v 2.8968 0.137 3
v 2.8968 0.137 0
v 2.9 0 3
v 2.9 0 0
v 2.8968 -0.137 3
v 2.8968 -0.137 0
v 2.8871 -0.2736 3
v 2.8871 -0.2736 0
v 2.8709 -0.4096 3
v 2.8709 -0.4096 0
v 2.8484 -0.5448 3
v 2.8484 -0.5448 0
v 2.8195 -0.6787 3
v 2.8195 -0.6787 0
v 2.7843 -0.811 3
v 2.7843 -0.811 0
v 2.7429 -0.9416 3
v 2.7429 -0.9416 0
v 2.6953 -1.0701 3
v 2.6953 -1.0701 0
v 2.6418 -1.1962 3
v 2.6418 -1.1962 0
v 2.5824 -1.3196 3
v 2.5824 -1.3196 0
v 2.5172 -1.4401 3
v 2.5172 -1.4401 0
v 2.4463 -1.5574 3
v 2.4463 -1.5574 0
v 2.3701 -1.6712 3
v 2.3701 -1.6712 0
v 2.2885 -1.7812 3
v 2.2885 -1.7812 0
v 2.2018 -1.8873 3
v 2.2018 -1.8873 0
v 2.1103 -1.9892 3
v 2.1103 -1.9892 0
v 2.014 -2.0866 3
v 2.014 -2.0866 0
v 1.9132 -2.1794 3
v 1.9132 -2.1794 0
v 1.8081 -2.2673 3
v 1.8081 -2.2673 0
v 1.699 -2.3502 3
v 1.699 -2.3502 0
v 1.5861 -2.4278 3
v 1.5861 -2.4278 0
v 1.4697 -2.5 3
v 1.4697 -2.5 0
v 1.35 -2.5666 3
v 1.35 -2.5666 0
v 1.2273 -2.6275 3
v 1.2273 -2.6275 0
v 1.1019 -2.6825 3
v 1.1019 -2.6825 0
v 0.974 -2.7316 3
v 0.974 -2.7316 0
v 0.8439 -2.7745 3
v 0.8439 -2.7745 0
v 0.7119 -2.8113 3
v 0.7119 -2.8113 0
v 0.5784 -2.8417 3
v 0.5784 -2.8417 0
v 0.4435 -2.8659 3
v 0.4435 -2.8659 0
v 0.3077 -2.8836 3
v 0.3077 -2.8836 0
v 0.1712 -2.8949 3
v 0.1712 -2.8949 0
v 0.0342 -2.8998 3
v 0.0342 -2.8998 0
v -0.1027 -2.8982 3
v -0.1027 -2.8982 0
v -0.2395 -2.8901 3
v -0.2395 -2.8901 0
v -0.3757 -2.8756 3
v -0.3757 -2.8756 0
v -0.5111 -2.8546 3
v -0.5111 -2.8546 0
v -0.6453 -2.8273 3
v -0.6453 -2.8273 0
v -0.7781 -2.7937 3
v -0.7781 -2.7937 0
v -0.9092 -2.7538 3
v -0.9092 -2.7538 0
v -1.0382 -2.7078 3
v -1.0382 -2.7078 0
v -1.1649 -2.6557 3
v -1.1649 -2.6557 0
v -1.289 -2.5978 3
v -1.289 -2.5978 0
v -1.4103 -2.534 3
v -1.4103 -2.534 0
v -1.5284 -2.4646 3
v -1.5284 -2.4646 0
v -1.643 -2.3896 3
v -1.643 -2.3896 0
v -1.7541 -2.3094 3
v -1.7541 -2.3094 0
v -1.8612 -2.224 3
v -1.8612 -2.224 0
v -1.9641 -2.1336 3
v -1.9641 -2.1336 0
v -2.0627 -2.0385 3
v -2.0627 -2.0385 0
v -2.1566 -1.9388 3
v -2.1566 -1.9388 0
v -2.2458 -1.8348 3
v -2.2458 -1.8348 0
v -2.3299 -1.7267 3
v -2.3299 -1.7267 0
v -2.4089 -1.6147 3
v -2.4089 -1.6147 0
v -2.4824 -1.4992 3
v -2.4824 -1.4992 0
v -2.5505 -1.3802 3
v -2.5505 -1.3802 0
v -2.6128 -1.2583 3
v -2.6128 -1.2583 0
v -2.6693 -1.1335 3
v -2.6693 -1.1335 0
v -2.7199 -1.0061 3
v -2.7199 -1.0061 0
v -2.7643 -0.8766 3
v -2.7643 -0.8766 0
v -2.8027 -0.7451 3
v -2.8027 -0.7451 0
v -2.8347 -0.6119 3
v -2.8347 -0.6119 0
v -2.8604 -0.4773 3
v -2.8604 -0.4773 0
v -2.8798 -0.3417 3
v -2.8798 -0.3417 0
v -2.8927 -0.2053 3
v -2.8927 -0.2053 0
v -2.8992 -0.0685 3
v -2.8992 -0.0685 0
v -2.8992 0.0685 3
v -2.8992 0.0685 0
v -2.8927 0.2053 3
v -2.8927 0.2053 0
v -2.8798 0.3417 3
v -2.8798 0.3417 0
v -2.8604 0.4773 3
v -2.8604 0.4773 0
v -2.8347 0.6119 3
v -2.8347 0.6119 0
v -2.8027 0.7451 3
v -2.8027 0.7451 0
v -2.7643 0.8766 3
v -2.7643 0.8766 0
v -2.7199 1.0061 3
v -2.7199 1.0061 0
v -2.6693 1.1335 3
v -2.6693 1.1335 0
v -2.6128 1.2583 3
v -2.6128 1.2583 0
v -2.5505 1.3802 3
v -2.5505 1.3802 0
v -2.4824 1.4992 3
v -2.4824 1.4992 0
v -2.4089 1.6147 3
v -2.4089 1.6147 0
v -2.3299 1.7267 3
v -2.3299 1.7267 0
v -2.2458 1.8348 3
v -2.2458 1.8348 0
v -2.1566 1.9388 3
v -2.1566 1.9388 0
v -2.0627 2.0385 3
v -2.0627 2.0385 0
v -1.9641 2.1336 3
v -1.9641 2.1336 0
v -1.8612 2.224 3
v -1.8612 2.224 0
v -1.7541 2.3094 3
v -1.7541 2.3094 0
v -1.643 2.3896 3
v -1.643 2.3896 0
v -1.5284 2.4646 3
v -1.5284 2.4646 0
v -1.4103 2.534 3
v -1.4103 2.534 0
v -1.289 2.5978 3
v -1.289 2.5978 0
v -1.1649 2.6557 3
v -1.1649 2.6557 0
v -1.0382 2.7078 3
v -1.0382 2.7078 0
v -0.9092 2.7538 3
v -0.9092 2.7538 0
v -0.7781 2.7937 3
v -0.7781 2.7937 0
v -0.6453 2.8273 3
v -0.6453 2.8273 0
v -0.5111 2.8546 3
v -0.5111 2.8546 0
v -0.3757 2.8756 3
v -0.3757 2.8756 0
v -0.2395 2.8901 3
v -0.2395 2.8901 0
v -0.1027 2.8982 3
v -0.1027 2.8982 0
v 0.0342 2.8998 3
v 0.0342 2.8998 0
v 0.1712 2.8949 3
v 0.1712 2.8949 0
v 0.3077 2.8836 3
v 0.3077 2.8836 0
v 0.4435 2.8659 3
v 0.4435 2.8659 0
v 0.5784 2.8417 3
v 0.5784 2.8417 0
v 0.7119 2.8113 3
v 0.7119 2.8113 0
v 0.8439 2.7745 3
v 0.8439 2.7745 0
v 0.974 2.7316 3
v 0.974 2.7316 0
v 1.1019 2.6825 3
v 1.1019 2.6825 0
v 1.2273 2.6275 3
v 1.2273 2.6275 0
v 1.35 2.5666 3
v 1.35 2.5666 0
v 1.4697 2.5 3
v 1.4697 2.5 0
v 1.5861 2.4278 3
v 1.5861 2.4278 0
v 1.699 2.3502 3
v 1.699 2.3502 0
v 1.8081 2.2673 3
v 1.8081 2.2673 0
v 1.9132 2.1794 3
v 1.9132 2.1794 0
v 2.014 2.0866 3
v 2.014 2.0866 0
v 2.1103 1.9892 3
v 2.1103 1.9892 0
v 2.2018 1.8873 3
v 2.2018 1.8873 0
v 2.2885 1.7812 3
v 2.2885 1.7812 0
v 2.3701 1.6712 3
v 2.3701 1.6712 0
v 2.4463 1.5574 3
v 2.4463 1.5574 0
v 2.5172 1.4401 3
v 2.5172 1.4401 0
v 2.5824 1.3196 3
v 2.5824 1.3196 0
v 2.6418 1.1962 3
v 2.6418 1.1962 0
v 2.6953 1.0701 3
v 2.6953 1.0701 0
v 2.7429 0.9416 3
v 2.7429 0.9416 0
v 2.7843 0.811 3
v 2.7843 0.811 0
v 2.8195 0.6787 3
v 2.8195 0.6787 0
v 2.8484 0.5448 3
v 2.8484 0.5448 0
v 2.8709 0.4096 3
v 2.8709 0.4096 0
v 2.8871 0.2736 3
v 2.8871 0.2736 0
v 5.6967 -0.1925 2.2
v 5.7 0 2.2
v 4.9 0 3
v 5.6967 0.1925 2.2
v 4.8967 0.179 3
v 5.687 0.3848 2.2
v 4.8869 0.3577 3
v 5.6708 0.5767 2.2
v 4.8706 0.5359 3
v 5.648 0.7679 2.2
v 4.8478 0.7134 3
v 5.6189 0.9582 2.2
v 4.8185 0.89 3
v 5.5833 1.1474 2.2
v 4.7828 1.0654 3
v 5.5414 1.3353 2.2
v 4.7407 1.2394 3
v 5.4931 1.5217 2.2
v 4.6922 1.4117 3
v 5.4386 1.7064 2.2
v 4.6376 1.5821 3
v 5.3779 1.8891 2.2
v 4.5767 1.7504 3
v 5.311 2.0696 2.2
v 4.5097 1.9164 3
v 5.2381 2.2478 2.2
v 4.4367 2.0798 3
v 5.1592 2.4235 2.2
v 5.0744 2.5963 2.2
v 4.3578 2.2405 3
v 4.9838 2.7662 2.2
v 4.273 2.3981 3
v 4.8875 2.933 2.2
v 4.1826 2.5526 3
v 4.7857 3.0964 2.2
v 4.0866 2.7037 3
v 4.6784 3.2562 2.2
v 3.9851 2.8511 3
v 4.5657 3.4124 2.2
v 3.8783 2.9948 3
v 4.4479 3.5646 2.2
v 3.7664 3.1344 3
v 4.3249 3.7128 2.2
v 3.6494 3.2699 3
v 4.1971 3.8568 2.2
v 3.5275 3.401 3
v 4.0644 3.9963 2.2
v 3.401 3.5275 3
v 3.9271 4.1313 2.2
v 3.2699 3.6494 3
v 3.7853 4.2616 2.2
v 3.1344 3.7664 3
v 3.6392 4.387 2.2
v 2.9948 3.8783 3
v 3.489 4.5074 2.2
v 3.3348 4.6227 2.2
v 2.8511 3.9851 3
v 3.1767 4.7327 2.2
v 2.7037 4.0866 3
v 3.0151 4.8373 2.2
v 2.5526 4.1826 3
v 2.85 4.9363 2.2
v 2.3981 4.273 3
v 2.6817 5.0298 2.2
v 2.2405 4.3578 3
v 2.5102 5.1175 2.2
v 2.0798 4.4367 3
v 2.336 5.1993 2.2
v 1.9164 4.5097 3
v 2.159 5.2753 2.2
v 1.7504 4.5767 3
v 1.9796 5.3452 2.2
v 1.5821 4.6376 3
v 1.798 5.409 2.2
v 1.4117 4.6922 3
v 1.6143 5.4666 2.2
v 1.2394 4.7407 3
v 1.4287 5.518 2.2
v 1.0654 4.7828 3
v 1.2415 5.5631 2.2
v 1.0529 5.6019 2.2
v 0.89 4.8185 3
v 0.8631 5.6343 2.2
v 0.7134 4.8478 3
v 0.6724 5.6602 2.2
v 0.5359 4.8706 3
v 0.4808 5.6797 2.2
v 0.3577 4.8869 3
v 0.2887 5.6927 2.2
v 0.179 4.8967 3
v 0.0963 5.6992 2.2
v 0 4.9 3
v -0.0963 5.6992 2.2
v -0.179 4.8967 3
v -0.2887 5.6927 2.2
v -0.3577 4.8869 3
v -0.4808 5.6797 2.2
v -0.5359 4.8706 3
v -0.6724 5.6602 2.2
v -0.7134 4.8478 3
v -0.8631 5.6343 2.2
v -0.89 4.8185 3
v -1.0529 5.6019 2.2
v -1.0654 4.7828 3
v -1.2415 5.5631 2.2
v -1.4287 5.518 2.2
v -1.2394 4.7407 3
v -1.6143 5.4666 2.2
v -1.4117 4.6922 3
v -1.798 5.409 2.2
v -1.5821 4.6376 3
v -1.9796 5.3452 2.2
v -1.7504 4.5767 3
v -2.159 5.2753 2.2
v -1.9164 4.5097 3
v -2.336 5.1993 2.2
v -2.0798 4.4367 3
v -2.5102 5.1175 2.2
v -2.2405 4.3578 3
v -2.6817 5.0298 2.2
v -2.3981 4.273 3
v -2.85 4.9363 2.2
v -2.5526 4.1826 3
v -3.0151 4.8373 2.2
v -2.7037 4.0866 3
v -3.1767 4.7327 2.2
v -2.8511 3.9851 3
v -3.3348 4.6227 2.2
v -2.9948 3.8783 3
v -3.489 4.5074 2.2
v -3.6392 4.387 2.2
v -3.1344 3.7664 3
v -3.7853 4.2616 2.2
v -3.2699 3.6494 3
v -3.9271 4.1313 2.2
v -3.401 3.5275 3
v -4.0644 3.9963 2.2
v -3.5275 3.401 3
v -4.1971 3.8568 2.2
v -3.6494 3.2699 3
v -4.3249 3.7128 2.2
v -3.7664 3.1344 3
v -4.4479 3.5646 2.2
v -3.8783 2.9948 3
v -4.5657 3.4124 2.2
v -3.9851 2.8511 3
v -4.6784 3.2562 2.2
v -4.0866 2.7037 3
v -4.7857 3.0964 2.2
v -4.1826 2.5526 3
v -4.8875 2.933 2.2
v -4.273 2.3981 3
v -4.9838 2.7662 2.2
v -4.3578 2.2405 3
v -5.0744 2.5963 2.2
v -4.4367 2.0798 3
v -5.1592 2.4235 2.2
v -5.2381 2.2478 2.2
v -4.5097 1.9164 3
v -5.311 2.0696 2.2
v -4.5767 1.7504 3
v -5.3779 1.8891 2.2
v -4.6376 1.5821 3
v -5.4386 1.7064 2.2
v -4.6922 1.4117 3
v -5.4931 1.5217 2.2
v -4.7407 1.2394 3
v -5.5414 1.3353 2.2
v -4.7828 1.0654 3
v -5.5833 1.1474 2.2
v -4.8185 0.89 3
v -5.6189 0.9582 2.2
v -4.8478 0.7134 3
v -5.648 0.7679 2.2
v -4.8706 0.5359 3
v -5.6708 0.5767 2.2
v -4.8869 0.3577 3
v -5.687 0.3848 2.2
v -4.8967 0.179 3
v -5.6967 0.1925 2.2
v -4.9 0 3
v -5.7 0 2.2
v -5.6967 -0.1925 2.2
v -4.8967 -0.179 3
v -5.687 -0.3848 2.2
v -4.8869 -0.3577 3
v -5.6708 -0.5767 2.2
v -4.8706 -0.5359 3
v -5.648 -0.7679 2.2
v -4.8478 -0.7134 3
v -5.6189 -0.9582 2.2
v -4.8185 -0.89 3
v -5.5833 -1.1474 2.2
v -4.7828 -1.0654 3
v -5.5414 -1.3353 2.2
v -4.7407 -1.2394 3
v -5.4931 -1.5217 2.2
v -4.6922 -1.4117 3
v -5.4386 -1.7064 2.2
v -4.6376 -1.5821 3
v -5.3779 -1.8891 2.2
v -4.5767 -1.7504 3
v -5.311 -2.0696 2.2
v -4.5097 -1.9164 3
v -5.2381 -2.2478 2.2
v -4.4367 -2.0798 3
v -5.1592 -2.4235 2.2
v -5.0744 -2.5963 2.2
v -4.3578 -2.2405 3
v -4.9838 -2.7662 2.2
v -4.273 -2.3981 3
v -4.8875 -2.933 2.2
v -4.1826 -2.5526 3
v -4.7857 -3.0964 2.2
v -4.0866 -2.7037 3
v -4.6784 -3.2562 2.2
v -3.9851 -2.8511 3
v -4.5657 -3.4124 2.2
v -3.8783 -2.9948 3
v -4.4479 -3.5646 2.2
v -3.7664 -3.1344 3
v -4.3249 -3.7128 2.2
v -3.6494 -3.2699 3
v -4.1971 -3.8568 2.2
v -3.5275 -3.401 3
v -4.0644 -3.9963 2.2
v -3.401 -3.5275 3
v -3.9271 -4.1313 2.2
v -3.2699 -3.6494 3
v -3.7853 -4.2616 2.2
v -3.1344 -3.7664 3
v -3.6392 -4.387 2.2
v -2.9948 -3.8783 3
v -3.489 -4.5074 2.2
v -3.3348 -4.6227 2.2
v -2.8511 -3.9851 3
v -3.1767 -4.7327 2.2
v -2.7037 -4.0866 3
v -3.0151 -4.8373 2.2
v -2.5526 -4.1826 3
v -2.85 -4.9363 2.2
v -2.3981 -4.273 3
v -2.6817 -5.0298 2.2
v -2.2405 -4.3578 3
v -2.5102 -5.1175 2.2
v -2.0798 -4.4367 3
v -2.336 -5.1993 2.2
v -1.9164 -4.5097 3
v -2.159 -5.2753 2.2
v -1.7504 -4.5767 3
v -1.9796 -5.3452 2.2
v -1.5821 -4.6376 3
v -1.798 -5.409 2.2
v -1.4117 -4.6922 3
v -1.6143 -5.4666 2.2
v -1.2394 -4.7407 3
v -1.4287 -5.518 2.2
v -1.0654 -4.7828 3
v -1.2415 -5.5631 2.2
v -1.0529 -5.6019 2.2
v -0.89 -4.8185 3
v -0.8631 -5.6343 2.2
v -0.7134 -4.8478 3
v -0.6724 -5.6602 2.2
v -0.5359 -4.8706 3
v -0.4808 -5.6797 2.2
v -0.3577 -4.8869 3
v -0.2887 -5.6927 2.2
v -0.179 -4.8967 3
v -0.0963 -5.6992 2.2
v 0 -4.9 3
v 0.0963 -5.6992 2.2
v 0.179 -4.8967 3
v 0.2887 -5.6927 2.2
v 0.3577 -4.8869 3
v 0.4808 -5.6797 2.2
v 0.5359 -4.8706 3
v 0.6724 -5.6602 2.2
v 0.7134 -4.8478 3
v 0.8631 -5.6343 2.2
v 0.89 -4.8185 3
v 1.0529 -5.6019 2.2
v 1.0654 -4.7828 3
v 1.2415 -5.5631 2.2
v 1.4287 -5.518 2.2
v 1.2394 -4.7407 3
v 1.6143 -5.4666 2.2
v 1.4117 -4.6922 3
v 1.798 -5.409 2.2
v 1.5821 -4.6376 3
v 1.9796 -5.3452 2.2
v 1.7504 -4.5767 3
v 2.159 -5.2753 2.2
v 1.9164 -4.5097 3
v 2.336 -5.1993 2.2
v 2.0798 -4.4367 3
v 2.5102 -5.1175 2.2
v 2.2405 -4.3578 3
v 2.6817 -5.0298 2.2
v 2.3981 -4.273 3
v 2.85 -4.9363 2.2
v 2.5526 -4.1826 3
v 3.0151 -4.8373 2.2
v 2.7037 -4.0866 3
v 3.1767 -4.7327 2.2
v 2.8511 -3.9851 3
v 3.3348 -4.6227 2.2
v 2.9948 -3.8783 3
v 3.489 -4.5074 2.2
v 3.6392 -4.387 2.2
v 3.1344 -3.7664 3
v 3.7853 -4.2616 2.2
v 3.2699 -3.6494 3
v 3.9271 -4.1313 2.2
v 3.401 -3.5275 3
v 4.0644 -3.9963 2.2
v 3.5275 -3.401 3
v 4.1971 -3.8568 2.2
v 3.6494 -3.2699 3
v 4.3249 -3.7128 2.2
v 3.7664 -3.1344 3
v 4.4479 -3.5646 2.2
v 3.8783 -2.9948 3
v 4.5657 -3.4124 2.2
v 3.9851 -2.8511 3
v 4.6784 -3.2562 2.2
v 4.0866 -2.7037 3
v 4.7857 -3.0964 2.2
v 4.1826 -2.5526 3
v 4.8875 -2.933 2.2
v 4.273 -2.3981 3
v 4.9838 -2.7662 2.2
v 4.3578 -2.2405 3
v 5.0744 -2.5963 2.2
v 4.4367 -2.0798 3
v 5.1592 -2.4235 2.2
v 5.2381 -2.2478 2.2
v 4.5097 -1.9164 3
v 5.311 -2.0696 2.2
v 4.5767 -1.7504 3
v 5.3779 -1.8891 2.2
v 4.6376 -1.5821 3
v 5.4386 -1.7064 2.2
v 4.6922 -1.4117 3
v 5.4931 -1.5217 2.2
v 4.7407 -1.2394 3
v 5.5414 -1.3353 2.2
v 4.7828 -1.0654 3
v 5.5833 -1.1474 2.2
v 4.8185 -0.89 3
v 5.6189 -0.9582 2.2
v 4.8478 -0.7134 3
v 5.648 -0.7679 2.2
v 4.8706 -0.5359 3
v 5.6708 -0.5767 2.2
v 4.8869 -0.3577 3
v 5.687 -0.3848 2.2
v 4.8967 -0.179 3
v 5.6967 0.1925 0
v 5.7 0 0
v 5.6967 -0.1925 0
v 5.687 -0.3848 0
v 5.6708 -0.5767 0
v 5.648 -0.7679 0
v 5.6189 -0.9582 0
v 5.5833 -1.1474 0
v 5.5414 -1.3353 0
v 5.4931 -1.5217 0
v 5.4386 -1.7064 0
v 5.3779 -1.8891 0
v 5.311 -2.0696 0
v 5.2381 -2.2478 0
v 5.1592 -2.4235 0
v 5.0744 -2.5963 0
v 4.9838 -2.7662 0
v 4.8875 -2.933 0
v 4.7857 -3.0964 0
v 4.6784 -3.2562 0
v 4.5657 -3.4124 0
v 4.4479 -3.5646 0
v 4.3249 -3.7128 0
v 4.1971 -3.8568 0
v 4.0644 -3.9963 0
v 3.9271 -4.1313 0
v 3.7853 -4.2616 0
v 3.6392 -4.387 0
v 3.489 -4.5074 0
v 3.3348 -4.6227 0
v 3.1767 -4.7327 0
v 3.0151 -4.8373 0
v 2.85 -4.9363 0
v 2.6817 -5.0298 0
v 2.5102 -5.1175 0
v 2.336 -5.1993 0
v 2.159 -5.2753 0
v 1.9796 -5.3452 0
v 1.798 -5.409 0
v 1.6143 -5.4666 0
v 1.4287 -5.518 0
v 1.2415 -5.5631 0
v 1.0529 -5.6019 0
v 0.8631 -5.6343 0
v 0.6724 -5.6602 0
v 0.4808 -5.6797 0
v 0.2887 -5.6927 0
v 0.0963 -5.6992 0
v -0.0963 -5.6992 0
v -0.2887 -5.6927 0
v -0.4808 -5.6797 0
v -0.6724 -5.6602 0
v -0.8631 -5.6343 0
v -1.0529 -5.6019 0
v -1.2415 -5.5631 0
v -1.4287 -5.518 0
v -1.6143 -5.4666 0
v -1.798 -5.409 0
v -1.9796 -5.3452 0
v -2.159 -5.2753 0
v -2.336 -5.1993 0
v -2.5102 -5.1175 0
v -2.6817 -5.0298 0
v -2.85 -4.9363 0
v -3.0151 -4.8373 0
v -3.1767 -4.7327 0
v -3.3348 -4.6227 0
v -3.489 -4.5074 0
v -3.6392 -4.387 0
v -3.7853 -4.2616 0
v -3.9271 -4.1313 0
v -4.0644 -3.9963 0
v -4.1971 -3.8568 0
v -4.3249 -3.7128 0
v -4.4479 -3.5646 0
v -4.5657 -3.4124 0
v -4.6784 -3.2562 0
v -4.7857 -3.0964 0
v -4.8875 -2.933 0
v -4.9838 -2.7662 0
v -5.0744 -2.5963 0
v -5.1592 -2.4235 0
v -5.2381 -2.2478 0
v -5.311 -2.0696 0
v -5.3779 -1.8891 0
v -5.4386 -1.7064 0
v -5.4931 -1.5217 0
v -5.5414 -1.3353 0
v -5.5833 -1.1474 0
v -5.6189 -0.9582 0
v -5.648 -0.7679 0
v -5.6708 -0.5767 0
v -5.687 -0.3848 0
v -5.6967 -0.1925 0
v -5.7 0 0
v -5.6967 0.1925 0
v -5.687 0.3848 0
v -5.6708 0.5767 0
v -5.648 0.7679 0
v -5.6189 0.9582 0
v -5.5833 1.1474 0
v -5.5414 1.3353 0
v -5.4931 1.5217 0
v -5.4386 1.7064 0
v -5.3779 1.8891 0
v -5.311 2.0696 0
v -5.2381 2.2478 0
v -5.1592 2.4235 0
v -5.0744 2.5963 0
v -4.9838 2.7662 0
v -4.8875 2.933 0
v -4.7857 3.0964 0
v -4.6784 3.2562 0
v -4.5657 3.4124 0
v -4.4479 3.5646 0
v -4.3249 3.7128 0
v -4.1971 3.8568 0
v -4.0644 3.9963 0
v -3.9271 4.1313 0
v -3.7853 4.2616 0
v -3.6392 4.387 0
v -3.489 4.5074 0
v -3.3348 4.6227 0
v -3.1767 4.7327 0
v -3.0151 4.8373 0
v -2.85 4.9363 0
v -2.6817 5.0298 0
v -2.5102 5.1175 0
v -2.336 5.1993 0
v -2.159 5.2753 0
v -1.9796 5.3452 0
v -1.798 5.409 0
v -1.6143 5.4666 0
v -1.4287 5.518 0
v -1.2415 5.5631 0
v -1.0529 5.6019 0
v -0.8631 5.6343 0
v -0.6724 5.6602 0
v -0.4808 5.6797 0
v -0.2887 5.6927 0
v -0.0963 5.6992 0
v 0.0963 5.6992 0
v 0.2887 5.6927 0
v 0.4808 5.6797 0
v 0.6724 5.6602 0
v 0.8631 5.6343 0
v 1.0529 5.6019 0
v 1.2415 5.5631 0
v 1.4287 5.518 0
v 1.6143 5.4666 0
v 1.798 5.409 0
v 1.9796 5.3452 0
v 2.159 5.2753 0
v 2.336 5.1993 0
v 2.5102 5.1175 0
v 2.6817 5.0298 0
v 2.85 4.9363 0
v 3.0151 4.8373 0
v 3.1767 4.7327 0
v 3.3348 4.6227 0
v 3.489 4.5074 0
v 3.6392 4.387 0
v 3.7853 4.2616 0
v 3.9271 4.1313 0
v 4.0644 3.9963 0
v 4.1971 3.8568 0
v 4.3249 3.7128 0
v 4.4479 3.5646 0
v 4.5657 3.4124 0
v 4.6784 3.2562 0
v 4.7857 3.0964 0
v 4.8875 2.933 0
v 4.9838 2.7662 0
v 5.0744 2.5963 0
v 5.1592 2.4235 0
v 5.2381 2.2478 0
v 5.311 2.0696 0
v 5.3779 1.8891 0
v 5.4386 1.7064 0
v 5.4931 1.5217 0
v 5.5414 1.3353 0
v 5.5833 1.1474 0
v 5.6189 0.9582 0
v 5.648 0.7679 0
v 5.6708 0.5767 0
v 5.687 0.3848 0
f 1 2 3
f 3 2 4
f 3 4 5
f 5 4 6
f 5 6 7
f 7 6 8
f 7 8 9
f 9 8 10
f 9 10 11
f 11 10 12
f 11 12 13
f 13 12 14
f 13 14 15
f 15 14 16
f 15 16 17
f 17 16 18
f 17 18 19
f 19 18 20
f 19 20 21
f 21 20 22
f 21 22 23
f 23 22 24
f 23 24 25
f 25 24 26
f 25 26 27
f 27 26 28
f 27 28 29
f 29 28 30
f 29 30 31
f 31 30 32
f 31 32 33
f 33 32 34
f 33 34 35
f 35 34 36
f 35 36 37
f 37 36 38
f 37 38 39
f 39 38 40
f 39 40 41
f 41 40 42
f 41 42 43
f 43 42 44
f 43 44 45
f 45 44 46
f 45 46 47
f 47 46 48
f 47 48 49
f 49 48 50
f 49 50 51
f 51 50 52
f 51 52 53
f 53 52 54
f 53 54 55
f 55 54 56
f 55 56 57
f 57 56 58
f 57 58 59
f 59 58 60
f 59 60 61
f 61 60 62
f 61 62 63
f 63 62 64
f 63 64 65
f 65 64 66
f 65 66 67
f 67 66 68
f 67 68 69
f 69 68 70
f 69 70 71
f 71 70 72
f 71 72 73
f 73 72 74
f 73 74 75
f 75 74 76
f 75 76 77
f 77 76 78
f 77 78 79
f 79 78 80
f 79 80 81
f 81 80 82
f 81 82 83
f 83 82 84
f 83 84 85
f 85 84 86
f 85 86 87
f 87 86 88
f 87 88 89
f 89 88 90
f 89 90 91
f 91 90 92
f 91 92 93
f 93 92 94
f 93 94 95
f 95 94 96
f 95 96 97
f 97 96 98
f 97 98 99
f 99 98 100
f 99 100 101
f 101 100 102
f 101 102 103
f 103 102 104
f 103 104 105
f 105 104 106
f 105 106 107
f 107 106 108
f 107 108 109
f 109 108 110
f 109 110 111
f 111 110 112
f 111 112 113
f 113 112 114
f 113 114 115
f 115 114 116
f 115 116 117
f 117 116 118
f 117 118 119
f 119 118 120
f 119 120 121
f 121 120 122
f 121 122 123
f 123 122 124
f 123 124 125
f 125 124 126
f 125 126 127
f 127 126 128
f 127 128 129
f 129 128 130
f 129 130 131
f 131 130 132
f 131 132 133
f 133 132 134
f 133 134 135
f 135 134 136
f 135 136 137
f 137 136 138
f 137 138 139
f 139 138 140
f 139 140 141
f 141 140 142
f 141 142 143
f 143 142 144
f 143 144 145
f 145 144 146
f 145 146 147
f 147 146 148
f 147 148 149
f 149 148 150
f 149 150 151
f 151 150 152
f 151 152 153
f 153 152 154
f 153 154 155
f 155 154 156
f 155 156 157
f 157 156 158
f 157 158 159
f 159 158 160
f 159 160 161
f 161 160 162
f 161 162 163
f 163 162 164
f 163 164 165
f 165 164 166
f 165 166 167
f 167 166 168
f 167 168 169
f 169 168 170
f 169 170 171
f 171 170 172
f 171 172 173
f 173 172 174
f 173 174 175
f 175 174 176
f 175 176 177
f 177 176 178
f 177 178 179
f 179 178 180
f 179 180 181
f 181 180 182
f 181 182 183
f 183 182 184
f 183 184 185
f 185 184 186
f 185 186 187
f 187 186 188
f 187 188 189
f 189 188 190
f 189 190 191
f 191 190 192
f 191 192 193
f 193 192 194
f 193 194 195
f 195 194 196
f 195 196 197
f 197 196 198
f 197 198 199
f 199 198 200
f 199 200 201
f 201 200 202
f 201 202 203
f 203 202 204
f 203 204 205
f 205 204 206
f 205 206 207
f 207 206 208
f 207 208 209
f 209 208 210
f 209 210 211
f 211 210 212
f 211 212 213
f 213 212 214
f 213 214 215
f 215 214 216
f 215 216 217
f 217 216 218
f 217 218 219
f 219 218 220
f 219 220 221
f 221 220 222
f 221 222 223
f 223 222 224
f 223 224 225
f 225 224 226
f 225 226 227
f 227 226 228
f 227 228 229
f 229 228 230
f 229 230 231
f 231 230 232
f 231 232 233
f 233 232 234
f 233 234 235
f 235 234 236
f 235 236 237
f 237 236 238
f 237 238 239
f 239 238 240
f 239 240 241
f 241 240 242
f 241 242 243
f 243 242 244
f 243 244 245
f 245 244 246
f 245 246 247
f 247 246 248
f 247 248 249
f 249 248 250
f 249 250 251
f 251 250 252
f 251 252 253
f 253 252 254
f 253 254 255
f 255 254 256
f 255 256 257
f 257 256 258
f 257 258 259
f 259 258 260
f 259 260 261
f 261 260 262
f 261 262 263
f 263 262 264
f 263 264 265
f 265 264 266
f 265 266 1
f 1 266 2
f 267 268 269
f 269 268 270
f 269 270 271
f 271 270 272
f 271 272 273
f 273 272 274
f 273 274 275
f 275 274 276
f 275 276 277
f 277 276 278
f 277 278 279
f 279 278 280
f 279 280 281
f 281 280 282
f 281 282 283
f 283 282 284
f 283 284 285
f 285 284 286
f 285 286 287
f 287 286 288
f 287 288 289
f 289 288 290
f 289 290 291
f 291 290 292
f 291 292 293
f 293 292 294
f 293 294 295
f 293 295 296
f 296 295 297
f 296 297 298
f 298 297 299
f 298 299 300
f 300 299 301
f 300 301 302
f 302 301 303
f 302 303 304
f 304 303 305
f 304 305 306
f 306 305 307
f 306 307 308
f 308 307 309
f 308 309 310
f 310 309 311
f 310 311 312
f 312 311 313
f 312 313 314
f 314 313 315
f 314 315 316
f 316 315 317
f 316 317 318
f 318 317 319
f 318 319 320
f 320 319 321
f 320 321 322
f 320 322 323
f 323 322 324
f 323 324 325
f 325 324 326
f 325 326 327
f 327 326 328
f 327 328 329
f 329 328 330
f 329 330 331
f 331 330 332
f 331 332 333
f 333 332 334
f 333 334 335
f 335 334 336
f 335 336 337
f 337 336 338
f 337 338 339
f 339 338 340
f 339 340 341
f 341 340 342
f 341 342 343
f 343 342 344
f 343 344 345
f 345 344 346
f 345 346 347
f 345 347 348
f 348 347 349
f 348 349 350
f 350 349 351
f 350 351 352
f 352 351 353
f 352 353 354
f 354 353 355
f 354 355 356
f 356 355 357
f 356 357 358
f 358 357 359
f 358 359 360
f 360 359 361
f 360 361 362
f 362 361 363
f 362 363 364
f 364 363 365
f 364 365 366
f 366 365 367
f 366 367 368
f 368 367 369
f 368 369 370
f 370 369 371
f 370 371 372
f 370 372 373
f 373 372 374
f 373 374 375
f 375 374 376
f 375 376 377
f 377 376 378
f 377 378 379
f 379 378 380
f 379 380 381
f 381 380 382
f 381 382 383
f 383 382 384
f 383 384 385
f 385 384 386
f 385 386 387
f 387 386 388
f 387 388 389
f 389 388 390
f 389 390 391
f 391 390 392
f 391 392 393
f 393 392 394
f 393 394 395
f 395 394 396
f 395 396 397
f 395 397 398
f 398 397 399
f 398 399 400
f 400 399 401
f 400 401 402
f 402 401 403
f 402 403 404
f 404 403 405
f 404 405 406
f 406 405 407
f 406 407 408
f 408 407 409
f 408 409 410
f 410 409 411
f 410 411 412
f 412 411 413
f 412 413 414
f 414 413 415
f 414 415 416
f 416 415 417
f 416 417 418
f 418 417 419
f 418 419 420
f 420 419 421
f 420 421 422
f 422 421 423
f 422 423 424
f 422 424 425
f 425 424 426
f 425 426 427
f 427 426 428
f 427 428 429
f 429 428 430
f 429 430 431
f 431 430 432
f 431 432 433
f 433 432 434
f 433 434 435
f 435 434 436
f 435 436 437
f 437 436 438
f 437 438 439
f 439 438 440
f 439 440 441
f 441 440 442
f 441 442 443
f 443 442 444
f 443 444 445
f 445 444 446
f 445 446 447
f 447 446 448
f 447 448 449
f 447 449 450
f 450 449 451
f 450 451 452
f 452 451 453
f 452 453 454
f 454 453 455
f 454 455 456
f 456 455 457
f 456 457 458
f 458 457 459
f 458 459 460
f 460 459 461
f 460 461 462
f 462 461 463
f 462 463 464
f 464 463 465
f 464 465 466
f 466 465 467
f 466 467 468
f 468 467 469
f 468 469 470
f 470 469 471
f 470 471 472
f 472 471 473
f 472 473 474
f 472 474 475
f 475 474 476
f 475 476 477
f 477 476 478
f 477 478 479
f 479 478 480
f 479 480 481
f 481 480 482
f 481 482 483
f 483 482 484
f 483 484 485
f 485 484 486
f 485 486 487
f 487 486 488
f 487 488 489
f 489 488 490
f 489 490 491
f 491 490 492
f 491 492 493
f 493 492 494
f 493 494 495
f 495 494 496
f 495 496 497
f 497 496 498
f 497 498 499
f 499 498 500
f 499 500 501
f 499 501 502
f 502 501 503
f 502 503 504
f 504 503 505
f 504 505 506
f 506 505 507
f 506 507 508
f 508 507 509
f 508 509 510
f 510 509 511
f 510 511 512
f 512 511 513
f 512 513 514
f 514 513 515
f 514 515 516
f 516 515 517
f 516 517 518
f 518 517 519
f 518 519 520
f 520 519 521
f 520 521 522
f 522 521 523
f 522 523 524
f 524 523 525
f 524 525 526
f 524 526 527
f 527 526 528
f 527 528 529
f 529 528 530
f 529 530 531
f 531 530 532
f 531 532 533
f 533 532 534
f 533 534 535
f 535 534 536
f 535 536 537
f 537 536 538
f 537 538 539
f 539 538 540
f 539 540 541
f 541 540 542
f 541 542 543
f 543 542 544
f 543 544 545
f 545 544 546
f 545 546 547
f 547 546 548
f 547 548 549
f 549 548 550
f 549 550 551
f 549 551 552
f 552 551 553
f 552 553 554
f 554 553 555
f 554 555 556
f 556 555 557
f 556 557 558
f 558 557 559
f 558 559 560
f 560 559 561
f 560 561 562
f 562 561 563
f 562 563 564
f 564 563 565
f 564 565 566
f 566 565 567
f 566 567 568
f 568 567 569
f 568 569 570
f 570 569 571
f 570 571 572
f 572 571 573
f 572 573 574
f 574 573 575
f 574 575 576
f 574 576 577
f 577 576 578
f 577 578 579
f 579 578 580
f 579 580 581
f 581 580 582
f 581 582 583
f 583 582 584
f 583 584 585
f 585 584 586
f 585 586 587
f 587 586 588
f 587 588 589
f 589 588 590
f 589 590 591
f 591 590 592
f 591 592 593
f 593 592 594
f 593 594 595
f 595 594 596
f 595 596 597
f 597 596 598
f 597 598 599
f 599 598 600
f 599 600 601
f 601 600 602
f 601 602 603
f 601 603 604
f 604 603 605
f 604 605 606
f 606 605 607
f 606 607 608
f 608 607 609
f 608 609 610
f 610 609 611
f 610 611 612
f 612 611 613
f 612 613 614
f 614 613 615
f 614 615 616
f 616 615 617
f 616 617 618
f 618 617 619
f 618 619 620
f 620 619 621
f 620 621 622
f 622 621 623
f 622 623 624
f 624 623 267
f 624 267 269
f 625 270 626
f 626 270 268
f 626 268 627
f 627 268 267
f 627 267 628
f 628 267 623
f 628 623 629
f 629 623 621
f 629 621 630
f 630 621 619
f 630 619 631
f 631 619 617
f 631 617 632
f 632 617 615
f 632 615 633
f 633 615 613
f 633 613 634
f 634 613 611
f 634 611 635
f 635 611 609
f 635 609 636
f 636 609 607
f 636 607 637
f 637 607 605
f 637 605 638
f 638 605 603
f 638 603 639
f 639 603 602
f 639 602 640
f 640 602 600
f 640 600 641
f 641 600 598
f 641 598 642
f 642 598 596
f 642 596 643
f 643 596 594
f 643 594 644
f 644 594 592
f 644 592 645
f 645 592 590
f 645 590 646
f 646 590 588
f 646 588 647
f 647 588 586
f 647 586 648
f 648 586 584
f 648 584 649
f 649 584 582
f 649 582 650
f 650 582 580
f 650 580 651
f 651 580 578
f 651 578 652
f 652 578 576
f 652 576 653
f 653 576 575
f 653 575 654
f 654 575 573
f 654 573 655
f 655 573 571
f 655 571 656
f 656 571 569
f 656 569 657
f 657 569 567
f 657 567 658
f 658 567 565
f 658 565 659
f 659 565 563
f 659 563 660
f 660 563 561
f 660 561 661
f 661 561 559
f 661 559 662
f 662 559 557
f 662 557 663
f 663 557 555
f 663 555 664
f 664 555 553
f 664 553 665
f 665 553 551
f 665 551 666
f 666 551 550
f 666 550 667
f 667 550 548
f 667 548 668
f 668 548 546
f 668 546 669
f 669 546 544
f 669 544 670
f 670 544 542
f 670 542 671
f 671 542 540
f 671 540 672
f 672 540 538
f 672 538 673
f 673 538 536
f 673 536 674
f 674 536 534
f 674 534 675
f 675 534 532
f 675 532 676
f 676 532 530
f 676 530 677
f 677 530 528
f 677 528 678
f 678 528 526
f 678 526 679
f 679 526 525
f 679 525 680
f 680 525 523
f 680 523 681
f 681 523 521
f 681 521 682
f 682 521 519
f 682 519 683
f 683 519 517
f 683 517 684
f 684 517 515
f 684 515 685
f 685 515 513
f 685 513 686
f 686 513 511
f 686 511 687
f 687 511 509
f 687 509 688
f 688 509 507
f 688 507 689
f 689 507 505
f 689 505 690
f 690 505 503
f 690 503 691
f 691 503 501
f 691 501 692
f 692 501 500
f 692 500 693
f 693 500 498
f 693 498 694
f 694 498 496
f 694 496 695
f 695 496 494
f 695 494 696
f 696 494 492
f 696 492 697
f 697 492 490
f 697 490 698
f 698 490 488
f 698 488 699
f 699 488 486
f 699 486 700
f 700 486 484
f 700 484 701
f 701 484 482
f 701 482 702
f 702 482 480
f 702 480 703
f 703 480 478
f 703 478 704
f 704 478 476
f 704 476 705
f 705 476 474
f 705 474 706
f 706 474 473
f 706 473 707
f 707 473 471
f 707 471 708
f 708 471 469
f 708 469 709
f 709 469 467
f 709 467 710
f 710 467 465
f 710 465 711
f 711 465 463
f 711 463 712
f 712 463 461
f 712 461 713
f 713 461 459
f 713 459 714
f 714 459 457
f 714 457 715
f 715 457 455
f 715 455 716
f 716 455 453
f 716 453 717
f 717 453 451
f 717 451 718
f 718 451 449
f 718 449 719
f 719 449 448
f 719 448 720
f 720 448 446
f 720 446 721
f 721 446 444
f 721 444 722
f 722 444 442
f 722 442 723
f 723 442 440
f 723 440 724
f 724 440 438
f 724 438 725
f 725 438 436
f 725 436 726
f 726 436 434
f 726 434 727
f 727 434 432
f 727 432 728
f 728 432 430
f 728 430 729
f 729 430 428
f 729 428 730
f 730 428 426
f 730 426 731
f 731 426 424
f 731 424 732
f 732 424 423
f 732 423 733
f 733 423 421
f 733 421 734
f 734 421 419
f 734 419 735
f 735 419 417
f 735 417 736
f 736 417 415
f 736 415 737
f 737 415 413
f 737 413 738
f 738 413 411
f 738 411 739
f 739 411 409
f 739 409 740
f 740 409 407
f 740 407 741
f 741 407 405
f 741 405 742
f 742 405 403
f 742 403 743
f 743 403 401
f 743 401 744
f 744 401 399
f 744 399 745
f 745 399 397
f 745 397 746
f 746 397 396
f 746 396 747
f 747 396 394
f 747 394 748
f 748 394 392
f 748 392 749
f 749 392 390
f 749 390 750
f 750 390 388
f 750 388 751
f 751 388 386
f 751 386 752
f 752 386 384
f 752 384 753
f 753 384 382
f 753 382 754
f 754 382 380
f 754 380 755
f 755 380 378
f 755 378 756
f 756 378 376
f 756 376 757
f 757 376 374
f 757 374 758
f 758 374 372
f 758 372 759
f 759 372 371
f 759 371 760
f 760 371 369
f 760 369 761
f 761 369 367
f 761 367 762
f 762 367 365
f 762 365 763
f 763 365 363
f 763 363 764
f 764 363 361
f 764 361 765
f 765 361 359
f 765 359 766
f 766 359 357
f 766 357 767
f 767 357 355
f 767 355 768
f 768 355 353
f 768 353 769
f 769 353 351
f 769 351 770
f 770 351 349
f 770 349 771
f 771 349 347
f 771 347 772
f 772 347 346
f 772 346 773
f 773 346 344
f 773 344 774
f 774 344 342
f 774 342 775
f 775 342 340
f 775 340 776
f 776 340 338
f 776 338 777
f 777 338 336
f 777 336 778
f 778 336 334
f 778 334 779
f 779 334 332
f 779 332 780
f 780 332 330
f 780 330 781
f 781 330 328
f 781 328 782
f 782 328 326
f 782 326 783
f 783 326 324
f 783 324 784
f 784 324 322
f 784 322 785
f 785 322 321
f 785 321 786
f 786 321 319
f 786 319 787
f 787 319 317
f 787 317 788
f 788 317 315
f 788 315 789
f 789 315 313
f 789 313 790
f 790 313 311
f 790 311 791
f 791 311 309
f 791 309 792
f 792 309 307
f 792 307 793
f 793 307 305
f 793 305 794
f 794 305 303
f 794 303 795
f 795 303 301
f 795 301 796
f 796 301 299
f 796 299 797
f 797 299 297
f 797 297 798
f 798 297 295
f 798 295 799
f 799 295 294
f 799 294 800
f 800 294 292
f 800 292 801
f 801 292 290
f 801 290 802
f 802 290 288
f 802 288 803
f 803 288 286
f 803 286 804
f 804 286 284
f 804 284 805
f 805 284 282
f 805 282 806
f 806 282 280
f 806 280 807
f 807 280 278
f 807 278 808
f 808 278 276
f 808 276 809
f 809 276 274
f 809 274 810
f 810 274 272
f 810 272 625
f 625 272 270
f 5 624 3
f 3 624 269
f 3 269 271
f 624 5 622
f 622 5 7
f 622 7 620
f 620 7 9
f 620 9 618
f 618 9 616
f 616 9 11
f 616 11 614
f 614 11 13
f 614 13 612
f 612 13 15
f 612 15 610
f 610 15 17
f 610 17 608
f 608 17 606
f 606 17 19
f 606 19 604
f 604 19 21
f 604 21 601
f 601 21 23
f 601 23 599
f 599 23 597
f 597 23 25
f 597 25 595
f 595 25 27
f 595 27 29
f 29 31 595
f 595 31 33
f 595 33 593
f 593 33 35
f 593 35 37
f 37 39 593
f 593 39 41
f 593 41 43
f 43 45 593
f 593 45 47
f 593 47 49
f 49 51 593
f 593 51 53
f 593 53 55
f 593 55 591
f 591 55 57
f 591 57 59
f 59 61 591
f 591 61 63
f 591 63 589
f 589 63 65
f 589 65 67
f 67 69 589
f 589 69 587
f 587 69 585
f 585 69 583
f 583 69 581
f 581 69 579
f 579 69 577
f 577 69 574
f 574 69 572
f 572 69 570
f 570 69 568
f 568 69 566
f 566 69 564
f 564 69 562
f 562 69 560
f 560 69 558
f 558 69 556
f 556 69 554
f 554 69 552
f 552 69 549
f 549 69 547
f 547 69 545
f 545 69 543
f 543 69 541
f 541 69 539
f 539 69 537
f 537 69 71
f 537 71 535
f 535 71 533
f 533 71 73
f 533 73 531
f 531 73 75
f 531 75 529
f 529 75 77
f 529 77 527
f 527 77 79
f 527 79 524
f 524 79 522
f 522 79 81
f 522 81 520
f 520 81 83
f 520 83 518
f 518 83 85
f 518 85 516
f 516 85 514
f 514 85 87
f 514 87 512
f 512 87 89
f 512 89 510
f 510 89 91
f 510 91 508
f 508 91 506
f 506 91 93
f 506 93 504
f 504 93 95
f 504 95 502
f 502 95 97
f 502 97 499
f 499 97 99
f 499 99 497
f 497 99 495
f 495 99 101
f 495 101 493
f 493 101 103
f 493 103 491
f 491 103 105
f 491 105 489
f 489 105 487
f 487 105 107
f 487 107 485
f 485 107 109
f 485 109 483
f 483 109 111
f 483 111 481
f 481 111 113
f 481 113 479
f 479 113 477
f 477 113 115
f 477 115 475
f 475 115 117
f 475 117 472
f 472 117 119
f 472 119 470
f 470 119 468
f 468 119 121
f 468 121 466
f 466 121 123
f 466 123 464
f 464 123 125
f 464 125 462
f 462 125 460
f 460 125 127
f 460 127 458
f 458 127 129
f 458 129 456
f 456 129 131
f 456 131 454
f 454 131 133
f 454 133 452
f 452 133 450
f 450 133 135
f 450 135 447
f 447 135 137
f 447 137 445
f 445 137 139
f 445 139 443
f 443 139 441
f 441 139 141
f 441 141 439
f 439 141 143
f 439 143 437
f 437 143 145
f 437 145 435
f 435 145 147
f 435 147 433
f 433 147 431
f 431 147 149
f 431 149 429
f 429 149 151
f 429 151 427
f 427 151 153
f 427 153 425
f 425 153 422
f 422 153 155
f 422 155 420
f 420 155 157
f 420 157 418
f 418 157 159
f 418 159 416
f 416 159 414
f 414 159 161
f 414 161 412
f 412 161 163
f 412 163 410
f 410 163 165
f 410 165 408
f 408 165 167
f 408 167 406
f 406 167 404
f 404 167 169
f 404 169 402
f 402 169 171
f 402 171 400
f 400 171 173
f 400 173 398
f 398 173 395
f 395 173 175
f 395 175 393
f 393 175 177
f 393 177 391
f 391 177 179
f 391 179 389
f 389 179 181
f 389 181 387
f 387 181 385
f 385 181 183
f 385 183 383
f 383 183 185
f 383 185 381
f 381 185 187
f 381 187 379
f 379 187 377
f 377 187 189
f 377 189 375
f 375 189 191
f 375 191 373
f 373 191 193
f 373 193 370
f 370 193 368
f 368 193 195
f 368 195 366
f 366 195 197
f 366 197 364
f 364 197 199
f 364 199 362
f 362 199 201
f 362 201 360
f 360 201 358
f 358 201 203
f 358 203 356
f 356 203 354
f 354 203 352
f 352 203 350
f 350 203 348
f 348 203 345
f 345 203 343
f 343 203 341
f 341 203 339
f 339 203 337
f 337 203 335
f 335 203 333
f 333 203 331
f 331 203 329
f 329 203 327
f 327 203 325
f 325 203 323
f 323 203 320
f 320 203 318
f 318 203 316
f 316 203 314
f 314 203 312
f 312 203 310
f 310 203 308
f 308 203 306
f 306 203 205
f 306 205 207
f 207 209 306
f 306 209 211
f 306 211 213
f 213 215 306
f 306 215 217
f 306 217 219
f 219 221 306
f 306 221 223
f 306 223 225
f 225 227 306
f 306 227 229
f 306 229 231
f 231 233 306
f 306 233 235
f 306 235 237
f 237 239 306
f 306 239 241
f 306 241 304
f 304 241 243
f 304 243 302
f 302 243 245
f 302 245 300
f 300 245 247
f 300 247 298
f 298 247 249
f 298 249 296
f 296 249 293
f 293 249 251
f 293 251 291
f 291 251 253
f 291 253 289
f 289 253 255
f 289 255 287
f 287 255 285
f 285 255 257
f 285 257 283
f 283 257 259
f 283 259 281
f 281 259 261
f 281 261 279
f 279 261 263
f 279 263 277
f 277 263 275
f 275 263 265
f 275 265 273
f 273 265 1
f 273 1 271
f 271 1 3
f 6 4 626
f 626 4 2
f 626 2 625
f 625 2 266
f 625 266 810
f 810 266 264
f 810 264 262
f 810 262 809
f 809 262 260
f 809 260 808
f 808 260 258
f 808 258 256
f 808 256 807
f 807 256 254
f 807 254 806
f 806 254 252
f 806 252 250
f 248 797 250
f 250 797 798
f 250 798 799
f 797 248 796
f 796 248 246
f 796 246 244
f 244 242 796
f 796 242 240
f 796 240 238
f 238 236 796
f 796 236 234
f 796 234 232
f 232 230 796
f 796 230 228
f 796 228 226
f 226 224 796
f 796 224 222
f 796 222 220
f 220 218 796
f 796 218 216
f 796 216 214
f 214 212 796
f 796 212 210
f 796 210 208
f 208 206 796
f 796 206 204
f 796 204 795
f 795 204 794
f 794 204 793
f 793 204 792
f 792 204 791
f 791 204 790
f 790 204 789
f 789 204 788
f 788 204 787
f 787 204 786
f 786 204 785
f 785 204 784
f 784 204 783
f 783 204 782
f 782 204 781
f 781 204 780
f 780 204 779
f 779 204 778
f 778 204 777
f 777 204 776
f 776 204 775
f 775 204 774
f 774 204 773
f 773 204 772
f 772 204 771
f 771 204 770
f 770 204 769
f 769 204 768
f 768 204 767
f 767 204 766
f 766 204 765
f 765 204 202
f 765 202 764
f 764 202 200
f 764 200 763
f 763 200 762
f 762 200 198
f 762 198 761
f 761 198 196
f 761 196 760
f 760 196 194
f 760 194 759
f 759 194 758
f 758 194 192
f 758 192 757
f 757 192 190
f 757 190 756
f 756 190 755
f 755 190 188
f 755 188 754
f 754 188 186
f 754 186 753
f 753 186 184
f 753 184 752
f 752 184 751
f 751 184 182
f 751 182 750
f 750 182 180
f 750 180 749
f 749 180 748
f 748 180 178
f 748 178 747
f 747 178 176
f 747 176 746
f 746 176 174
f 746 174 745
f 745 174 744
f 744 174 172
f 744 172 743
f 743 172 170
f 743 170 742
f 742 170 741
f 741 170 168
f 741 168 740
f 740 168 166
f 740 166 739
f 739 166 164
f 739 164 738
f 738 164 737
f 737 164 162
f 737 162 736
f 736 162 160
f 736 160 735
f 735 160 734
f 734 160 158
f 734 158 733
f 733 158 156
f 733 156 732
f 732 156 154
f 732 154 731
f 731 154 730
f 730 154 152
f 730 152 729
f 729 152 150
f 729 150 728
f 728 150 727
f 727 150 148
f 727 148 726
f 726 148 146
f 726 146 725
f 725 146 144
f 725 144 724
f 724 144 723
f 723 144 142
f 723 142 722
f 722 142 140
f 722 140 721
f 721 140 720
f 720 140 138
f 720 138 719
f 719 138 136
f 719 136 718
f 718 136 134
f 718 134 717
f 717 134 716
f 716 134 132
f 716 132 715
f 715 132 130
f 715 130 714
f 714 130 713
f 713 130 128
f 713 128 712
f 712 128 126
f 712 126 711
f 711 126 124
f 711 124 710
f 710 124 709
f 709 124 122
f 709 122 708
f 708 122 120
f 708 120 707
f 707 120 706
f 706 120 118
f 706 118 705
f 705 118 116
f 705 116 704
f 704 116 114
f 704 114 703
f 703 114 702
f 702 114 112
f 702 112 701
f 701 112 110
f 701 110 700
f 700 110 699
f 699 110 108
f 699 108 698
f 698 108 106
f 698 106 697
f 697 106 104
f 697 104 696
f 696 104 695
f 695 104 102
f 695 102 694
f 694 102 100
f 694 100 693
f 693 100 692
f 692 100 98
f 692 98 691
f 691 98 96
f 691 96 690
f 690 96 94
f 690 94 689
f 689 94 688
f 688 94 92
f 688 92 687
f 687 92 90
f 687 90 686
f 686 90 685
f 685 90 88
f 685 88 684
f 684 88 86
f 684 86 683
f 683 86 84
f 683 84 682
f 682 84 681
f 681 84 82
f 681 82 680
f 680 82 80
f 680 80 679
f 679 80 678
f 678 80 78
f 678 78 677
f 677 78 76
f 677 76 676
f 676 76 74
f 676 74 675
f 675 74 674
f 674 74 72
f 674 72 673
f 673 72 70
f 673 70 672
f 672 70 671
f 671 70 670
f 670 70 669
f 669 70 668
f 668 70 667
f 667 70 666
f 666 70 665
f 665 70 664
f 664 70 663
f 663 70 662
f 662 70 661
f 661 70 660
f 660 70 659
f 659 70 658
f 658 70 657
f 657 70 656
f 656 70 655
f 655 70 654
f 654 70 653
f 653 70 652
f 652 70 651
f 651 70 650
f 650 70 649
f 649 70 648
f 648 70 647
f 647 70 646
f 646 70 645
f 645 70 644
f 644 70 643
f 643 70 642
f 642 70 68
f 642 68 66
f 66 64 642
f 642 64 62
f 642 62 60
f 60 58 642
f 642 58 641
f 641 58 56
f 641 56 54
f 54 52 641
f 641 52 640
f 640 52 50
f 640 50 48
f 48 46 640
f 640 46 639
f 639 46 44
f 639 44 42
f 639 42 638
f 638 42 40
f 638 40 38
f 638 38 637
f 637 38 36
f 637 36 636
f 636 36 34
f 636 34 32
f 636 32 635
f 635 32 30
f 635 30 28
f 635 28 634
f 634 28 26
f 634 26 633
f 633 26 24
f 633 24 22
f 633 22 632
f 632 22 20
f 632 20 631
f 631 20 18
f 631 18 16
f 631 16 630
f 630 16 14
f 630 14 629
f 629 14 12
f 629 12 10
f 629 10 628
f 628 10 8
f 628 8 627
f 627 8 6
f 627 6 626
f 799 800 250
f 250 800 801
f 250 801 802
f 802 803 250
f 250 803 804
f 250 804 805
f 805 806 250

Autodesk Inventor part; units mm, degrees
ref_plane "YZ Plane" through (0, 0, 0) normal (1, 0, 0) x (0, 1, 0)
ref_plane "XZ Plane" through (0, 0, 0) normal (0, 1, 0) x (-1, 0, 0)
ref_plane "XY Plane" through (0, 0, 0) normal (0, 0, 1) x (1, 0, 0)
sketch "Sketch1" plane through (0, 0, 0) normal (0, 0, 1) x (1, 0, 0)
  circle A0 centre (0, 0) radius 5.7
  dimension "d0" = 11.4
extrude "Extrusion1" add sketch "Sketch1" along normal blind 3
chamfer "Chamfer1" distance 0.8 angle 45 1 edges at (-5.7, 0, 3)
sketch "Sketch2" plane through (0, 0, 0) normal (0, 0, 1) x (1, 0, 0)
  circle A0 centre (0, 0) radius 2.9
  dimension "d6" = 5.8
extrude "Extrusion2" cut sketch "Sketch2" along normal blind 10
properties part number "Insert3mm"
